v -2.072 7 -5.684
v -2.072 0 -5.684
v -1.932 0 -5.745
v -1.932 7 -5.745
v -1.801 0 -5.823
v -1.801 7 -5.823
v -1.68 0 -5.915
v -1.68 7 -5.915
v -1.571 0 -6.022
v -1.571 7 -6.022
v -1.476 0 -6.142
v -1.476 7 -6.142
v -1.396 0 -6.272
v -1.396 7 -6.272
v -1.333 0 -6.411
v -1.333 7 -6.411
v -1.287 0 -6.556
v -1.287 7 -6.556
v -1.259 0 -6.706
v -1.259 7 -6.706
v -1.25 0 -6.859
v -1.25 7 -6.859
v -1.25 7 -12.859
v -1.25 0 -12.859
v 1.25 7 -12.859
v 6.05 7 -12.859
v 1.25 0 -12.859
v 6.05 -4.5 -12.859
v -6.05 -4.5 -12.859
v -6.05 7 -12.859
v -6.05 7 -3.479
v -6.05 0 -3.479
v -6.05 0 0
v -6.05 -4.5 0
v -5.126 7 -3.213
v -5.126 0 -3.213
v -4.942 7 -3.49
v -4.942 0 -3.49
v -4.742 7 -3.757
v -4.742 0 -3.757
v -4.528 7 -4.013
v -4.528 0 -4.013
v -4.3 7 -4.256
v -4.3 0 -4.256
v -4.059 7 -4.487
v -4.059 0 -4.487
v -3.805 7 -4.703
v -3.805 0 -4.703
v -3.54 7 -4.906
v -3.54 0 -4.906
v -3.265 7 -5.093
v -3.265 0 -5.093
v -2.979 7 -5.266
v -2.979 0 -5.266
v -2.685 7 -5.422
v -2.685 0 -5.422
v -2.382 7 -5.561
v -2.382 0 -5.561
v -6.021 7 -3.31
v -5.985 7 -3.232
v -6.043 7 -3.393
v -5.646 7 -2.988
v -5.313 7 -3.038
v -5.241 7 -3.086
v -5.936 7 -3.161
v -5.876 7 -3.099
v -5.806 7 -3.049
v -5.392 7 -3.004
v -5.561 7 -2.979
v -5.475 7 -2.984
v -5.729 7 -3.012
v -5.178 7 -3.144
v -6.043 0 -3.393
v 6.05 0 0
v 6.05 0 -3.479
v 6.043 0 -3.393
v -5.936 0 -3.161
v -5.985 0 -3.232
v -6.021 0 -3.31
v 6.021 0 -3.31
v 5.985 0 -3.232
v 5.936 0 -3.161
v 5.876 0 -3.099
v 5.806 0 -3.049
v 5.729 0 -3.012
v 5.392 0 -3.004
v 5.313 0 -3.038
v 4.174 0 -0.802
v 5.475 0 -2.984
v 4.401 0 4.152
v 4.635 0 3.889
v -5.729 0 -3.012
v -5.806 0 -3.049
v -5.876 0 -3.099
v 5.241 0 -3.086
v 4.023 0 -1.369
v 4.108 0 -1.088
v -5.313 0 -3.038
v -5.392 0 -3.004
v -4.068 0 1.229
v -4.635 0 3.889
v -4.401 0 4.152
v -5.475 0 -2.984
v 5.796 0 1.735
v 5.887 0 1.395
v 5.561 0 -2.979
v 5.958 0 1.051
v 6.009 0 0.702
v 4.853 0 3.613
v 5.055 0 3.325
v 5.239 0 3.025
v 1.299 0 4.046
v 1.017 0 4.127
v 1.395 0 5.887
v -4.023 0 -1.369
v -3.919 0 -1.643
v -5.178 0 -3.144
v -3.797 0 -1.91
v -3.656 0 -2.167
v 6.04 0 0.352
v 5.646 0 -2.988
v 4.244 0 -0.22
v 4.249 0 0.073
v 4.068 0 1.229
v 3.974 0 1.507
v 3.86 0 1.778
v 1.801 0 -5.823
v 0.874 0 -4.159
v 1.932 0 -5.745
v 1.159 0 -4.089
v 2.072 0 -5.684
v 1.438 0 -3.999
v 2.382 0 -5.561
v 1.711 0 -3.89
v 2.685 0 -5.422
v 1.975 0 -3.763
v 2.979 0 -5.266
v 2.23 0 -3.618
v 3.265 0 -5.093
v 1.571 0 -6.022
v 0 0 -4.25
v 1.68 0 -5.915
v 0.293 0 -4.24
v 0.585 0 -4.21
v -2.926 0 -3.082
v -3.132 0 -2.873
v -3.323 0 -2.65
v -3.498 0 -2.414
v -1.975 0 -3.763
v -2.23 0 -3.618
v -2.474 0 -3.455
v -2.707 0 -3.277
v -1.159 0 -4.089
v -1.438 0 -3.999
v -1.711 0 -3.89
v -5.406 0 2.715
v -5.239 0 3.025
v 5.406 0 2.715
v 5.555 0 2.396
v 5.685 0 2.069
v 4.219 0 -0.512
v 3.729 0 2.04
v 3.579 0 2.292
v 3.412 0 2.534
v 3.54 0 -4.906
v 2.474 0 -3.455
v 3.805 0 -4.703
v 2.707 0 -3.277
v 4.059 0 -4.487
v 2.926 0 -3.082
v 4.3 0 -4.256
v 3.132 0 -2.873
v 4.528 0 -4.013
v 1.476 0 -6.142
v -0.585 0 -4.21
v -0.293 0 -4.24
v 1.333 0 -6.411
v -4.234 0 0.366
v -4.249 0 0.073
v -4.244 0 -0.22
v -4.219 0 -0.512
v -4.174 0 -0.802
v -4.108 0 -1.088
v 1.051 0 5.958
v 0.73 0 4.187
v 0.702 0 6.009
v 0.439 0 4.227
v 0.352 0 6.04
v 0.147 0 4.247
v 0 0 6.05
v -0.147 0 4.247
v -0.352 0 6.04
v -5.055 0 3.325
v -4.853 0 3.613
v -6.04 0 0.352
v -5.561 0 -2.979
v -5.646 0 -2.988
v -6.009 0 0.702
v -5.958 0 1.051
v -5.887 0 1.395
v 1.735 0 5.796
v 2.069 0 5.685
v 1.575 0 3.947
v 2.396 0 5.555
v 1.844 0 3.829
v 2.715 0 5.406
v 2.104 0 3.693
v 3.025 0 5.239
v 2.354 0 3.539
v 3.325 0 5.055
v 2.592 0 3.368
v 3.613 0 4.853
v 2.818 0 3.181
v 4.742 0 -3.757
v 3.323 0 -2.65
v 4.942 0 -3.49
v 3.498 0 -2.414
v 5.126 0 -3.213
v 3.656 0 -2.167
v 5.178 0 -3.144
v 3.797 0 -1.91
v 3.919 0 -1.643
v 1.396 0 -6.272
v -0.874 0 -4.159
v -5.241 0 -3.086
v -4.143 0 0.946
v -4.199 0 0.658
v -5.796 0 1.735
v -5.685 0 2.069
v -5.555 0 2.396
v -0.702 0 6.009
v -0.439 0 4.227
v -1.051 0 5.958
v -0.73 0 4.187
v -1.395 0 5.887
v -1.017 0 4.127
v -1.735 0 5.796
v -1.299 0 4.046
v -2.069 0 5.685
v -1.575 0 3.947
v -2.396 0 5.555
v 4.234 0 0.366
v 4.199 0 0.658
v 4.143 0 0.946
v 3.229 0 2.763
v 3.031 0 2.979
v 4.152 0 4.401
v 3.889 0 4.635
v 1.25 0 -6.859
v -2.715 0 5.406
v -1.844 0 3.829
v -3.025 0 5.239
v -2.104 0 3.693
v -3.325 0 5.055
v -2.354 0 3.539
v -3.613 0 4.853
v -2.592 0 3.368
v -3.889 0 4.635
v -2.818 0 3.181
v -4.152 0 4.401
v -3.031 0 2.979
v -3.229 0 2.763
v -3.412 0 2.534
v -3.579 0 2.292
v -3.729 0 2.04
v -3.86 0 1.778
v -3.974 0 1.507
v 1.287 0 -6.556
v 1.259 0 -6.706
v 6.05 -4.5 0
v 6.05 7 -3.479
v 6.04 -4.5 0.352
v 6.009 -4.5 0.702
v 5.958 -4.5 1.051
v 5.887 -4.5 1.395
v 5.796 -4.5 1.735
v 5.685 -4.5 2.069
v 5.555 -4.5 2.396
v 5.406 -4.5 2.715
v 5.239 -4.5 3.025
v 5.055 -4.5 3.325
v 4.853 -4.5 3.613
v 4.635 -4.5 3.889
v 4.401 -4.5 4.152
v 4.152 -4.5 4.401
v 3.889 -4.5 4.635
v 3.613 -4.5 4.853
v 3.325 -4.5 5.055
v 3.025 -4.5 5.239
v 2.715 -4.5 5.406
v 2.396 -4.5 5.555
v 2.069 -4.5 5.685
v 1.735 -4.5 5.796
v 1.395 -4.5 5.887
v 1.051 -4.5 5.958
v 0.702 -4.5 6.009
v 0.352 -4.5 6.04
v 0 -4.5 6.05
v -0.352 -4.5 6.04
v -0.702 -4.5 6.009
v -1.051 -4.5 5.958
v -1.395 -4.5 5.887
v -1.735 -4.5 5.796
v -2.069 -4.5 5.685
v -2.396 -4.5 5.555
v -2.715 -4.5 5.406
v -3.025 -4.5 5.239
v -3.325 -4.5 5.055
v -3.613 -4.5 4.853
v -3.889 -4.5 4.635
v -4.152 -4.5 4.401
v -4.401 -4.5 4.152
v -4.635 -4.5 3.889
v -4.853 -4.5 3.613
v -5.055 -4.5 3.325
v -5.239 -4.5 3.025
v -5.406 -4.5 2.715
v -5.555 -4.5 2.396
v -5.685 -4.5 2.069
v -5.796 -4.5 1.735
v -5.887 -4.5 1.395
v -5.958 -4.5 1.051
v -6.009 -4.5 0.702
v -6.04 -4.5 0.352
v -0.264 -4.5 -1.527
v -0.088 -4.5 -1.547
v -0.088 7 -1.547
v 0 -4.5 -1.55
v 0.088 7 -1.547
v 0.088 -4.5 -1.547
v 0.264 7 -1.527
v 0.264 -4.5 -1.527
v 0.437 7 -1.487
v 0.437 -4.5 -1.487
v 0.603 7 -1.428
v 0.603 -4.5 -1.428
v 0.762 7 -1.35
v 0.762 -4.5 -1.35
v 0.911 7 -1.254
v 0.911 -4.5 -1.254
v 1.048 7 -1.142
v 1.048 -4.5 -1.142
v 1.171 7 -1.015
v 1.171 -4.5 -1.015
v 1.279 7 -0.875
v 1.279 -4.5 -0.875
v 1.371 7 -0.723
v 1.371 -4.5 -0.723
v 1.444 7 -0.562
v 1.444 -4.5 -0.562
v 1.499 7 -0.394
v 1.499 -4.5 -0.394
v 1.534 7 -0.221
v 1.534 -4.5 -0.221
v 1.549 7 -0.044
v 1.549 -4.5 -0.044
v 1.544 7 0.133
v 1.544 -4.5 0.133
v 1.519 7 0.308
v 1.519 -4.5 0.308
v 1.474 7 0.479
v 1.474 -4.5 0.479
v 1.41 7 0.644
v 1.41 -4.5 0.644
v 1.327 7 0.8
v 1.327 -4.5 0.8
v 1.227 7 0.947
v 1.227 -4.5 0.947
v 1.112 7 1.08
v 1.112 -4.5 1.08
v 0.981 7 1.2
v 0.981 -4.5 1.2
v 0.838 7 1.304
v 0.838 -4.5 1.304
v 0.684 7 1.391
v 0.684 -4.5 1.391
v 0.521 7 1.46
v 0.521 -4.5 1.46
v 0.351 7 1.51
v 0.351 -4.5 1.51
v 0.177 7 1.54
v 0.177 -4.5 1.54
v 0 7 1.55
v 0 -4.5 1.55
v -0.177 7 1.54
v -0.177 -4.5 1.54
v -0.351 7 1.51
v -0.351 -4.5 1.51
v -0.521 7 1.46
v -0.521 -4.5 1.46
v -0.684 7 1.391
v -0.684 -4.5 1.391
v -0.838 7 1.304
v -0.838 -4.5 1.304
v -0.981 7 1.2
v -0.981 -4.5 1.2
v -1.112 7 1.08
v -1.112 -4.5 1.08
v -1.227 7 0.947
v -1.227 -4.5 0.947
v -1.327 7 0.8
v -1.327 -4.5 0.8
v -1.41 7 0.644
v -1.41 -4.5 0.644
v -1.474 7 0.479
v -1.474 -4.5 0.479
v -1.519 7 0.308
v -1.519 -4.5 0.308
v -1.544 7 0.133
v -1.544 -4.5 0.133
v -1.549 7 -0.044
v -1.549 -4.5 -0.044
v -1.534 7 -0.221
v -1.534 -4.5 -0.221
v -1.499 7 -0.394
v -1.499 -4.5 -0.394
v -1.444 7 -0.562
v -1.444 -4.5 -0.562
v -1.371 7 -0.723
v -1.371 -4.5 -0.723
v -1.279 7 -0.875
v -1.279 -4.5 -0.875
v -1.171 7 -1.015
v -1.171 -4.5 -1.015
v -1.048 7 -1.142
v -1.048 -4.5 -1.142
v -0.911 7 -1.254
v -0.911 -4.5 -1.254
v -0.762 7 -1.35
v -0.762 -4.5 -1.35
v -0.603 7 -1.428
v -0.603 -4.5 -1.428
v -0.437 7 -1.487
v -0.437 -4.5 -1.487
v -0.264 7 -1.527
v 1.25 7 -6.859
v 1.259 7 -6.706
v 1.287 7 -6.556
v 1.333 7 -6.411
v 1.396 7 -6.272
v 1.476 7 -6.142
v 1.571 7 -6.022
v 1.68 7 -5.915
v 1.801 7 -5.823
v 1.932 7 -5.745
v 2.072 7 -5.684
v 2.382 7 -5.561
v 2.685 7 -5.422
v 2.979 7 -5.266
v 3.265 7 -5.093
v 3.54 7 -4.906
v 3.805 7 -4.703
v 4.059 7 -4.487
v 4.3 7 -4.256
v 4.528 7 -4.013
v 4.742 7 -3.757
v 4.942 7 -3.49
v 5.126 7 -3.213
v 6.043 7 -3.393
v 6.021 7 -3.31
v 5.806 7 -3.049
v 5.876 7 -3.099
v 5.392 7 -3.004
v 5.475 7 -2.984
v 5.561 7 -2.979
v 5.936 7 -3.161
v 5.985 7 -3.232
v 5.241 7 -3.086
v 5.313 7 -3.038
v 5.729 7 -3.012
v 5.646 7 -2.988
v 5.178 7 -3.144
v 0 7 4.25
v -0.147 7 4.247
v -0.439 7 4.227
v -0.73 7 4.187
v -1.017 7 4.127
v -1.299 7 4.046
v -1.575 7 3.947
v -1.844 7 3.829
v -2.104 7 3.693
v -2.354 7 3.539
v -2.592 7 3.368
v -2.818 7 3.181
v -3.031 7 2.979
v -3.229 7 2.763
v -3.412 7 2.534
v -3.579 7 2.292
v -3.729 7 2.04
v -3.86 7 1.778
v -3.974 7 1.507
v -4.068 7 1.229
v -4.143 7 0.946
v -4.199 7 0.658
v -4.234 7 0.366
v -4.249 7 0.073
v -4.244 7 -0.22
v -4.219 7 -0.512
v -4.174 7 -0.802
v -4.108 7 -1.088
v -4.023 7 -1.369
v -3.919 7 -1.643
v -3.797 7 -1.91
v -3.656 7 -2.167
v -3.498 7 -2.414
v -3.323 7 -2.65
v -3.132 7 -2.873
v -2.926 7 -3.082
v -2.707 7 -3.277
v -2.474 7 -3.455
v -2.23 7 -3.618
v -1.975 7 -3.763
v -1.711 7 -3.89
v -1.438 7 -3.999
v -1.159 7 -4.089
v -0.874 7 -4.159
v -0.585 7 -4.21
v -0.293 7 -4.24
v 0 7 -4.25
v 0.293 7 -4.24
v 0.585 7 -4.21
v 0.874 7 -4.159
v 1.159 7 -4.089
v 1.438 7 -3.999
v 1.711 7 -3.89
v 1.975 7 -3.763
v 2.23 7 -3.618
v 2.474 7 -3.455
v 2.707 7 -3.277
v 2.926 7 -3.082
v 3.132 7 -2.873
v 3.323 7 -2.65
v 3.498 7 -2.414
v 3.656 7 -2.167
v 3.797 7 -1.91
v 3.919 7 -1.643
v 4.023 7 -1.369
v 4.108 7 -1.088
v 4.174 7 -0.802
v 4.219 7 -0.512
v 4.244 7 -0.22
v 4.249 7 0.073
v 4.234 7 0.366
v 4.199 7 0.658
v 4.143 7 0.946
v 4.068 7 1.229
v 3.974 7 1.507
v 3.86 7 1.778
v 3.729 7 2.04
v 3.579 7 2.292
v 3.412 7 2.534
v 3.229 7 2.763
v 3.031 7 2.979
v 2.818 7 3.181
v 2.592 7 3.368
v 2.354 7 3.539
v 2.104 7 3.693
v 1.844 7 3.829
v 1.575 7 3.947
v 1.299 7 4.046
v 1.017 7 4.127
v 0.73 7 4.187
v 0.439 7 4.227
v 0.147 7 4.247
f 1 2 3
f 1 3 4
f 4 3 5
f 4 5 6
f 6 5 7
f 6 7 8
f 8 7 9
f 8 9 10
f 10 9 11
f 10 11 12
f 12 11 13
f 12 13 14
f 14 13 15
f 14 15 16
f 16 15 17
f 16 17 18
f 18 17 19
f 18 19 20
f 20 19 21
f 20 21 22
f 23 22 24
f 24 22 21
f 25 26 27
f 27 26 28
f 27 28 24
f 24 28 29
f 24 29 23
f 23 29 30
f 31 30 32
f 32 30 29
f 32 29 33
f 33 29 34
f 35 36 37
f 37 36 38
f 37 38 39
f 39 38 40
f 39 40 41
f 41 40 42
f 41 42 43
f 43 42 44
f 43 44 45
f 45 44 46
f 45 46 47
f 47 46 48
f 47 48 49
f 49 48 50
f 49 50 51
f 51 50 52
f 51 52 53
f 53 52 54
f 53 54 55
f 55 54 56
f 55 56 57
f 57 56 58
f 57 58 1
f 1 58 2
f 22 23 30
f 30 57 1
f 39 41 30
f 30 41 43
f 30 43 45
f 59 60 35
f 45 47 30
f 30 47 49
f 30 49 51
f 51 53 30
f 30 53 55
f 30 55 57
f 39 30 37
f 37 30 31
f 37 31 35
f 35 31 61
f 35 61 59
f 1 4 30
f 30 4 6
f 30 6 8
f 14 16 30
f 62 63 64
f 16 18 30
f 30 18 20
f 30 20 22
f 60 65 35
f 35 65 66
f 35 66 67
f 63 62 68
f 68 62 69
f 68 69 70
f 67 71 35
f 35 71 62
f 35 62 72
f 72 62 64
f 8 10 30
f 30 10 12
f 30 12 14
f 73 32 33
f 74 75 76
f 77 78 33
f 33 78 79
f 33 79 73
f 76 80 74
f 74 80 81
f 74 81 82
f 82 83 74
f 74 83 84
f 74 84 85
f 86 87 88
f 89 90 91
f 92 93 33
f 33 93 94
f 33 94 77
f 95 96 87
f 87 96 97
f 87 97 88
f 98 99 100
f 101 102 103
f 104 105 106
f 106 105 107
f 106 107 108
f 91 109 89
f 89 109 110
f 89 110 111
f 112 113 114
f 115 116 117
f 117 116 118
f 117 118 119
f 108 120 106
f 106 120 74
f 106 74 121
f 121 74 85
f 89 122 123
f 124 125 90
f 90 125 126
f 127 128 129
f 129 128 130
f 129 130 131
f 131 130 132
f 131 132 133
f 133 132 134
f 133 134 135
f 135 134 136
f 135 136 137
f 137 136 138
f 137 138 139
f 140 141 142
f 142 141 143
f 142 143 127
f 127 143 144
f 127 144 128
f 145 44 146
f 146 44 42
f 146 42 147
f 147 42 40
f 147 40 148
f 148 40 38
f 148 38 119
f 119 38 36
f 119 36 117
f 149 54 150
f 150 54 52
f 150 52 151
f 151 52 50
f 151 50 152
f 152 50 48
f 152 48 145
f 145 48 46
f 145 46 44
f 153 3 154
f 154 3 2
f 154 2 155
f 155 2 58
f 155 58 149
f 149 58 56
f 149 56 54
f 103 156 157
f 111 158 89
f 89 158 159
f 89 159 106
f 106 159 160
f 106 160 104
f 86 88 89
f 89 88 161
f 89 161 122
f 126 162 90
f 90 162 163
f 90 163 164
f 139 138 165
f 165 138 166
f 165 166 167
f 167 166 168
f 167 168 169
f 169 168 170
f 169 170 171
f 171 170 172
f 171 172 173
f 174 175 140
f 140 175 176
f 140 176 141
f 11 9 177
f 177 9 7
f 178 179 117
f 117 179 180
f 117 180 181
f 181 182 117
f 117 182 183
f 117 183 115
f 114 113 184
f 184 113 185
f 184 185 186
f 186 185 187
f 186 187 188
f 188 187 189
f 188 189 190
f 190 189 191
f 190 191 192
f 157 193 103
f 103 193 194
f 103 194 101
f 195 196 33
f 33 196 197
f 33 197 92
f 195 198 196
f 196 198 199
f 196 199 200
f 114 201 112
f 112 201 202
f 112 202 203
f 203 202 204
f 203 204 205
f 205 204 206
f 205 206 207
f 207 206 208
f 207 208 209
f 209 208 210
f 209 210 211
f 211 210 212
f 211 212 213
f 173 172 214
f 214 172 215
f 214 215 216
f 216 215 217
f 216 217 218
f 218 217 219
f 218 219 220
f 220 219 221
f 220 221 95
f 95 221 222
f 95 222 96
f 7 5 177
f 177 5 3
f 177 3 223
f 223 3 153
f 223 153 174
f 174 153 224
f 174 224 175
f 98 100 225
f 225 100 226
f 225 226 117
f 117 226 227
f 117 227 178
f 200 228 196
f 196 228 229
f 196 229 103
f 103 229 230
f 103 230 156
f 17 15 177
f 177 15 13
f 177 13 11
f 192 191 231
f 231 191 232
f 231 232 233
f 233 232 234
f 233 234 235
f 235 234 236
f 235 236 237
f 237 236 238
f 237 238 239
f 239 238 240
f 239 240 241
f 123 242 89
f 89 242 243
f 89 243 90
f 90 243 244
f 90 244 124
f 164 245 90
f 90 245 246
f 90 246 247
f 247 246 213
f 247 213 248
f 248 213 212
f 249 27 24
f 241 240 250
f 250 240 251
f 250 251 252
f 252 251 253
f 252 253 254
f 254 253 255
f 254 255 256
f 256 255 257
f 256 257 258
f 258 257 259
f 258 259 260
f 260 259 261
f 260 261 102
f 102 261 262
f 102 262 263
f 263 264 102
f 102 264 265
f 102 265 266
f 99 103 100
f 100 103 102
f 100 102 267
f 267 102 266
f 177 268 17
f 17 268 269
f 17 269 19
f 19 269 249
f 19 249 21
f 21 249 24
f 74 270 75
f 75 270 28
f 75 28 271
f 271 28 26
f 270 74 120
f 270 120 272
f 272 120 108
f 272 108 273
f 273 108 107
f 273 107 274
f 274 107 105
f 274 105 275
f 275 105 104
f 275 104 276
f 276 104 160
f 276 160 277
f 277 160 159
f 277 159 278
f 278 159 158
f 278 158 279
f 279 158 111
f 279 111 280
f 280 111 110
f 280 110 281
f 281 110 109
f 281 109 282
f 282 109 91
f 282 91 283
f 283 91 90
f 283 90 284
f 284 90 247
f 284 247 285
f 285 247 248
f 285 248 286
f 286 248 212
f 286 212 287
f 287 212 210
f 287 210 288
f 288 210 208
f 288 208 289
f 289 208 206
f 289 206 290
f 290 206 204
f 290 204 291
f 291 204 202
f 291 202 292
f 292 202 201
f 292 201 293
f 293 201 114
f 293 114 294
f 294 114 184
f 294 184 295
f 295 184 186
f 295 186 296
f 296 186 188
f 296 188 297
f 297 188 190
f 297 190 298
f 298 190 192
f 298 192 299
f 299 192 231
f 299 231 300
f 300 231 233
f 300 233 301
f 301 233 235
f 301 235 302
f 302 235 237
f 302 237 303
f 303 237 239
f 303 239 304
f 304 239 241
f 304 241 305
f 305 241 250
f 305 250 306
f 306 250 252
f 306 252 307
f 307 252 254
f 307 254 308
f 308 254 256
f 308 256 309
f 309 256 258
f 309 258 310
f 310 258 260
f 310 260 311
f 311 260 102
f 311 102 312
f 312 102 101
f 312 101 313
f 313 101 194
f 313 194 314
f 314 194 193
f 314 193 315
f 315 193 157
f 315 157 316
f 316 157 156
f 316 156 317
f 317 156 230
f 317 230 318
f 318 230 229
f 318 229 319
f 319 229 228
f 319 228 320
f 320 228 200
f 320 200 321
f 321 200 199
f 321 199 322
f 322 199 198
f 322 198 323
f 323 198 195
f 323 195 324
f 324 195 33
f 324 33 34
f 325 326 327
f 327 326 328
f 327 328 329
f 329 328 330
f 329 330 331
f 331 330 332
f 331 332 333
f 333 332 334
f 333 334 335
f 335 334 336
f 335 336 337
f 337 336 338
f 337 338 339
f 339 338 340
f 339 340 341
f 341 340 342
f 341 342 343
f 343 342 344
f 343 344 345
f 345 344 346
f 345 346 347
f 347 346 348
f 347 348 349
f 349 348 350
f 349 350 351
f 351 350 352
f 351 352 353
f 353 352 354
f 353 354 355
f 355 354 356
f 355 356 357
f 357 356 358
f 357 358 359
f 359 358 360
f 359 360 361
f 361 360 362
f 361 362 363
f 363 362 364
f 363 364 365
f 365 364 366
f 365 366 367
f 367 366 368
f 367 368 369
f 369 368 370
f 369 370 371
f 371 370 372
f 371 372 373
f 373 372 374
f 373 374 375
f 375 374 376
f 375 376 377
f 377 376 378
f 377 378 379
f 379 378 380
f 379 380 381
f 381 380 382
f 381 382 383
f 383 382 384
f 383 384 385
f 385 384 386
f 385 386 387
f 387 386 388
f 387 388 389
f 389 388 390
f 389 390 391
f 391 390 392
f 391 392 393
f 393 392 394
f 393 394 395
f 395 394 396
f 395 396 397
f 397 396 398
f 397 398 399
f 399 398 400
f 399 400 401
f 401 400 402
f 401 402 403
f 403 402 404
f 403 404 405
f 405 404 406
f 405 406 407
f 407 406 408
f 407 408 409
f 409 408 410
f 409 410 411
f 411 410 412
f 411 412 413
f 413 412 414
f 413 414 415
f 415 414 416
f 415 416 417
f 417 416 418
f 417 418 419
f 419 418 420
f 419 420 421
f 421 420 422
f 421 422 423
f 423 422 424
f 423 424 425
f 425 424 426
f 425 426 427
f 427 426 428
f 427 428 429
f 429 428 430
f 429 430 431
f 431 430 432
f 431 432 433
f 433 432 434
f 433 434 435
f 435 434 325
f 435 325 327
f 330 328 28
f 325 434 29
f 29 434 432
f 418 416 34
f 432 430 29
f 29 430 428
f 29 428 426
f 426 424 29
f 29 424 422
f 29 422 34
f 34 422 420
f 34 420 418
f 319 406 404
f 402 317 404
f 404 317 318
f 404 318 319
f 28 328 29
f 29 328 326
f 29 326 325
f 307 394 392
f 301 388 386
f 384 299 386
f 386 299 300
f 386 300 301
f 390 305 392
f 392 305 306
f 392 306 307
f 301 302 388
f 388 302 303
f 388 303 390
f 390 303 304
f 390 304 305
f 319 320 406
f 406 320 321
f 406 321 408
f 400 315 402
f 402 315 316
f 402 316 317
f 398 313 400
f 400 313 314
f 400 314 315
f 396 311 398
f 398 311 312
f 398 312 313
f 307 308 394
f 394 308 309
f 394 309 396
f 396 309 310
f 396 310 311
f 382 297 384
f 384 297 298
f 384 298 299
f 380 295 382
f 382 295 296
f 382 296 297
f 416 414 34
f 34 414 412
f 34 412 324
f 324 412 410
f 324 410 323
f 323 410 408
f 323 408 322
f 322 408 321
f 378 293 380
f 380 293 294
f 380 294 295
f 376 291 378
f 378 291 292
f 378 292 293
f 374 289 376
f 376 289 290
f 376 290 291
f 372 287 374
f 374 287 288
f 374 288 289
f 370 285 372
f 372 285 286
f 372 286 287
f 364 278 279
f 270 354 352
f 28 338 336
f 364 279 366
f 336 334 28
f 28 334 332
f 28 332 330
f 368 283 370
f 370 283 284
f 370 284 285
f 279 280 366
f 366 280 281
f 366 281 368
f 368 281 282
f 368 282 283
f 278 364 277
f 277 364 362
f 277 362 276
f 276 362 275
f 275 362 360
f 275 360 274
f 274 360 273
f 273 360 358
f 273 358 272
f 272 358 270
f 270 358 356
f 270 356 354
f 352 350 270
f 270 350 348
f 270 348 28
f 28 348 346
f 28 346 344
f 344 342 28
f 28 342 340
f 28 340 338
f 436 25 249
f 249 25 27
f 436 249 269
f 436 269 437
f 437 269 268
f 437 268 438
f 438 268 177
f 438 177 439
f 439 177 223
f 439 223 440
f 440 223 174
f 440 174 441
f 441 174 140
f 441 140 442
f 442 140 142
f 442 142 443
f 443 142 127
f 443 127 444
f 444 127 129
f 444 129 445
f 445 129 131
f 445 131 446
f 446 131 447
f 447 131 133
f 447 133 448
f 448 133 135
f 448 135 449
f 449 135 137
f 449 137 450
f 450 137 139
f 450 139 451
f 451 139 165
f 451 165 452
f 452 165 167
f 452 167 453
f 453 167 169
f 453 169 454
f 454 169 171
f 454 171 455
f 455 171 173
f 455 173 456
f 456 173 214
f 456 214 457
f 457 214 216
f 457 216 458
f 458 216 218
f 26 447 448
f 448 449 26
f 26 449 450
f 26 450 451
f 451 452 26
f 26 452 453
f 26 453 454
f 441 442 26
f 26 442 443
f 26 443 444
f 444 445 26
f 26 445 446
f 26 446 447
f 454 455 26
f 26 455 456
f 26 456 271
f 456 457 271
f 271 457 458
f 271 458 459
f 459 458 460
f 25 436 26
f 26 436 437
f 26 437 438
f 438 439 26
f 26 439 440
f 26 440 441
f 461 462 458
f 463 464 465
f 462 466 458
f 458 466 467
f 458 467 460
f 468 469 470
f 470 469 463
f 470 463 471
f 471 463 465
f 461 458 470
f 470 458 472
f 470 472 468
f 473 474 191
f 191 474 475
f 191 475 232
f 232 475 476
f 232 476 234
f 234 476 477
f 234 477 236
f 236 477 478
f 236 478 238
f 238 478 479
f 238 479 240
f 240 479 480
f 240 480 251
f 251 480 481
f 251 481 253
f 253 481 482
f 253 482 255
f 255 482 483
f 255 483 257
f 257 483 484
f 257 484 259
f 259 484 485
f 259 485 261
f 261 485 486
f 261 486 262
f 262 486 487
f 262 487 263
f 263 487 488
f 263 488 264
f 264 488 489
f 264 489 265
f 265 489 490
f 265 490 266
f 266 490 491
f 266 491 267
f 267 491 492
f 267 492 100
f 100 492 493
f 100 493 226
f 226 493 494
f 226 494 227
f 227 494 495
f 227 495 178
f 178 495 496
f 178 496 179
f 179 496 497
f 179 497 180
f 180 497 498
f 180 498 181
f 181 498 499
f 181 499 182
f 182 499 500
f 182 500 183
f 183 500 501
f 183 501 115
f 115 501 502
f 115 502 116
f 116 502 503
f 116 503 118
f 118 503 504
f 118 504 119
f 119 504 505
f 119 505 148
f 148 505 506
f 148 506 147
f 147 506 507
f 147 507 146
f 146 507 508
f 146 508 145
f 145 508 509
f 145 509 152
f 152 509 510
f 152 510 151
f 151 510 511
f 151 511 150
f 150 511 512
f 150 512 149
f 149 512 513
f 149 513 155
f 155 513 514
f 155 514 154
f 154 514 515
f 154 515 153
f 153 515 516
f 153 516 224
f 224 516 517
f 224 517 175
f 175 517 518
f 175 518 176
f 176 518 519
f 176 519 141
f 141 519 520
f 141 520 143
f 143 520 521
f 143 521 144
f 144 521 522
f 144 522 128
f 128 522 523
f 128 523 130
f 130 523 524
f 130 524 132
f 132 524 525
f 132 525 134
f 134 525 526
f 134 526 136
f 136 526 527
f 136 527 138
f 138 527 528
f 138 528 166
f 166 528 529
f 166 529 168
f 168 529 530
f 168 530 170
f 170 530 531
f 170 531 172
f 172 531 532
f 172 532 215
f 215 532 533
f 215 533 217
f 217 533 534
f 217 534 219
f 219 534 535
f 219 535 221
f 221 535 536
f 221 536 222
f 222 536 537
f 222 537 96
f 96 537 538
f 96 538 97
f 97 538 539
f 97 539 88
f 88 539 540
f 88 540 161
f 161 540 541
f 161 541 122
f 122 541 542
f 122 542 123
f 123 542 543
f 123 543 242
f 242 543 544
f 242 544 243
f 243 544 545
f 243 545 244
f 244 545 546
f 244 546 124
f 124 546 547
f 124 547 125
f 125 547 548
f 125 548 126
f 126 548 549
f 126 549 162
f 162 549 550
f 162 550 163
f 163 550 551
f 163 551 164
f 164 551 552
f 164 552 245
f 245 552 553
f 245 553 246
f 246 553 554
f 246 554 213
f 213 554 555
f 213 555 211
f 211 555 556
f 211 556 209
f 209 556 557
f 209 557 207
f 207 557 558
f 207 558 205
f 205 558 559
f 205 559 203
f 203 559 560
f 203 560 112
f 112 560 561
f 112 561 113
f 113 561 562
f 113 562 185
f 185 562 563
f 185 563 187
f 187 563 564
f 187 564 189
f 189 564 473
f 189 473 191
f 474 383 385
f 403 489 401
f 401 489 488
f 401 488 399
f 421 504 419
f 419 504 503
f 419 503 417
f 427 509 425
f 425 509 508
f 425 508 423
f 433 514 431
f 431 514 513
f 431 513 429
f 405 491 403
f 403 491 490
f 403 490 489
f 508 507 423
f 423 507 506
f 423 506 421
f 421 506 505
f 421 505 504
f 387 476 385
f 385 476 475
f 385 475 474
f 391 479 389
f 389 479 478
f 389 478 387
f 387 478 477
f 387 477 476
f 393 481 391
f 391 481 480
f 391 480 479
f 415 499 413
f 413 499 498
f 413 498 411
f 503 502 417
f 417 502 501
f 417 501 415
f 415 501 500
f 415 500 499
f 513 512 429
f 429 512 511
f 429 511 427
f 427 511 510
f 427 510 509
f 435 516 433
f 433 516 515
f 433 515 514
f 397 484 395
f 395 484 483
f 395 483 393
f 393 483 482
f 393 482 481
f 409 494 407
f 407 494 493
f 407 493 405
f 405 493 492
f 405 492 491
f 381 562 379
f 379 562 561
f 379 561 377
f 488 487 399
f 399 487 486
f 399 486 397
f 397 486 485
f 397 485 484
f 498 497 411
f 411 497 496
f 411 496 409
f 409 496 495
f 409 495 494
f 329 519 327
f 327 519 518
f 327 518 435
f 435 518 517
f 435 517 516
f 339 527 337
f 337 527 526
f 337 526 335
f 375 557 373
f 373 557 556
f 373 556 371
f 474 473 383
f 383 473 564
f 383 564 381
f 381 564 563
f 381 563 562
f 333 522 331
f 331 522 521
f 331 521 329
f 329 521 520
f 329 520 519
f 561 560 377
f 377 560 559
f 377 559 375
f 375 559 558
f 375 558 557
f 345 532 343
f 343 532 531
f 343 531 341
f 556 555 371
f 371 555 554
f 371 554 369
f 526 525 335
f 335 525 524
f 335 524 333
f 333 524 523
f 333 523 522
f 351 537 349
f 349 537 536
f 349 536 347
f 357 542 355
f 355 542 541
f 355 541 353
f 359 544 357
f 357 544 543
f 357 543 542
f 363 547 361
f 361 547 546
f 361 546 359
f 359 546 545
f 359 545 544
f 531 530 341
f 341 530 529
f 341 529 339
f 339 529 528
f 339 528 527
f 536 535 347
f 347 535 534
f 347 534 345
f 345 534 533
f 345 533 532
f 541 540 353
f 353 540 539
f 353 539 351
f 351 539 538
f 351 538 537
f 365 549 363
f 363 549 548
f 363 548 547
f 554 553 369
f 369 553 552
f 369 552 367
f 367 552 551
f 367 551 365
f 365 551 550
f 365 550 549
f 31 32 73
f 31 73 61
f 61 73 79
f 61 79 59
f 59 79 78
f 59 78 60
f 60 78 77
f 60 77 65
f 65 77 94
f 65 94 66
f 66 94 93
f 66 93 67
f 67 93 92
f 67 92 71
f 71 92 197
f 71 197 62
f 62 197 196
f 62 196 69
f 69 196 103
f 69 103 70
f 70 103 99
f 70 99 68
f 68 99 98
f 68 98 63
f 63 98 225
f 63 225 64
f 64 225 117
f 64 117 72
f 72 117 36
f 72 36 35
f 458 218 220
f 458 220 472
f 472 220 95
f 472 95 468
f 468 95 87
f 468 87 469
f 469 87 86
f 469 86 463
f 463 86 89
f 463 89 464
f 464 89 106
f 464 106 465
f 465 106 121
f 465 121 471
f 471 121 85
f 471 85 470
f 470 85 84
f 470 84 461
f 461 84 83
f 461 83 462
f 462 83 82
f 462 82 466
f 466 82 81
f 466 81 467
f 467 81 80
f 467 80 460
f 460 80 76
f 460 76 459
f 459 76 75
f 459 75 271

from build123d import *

# Parameters (mm, degrees)
BOSS_EXTRUDE1_DEPTH   = 7
BOSS_EXTRUDE1_2_DEPTH = 7
SKETCH1_R             = 4.25
SKETCH1_R_2           = 1.55
BOSS_EXTRUDE1_3_DEPTH = 7
BOSS_EXTRUDE2_START   = 4.5
SKETCH2_R             = 1.55
BOSS_EXTRUDE2_DEPTH   = 4.5
FILLET1_R             = 0.5
FILLET2_R             = 0.5


with BuildPart() as part:
    # Sketch1 → Boss-Extrude1 (new body)
    with BuildSketch(Plane(origin=(0, 0, 0), x_dir=(1, 0, 0), z_dir=(0, 1, 0))):
        with BuildLine():
            Line((1.25, 12.8585712797929), (1.25, 6.858571279792899))
            ThreePointArc((1.2499999999999998, 6.858571279792899), (1.4758899620338575, 6.141843555941653), (2.0719178082191787, 5.684158389417402))
            ThreePointArc((2.0719178082191805, 5.6841583894174015), (4.956692583756128, 3.468962183440025), (6.049999999999999, -2e-15))
            Line((6.05, 0), (6.05, 9.006664199358159))
            Line((6.05, 9.006664199358159), (6.05, 9.059732997737507))
            Line((6.05, 9.059732997737507), (6.05, 12.8585712797929))
            Line((6.05, 12.8585712797929), (1.25, 12.8585712797929))
        make_face()
    extrude(amount=BOSS_EXTRUDE1_DEPTH)



with BuildPart() as body_2:
    # Sketch1 → Boss-Extrude1 2 (new body)
    with BuildSketch(Plane(origin=(0, 0, 0), x_dir=(1, 0, 0), z_dir=(0, 1, 0))):
        with BuildLine():
            Line((-1.25, 6.858571279792899), (-1.25, 12.8585712797929))
            Line((-1.25, 12.8585712797929), (-6.05, 12.8585712797929))
            Line((-6.05, 12.8585712797929), (-6.05, 9.006664199358159))
            Line((-6.05, 9.006664199358159), (-6.05, 0))
            ThreePointArc((-6.050000000000002, 2.2e-16), (-4.95669258375613, 3.4689621834400257), (-2.0719178082191787, 5.684158389417403))
            ThreePointArc((-2.0719178082191787, 5.684158389417402), (-1.4758899620338577, 6.141843555941653), (-1.25, 6.858571279792899))
        make_face()
    extrude(amount=BOSS_EXTRUDE1_2_DEPTH)


with BuildPart() as body_3:
    # Sketch1 → Boss-Extrude1 3 (new body)
    with BuildSketch(Plane(origin=(0, 0, 0), x_dir=(1, 0, 0), z_dir=(0, 1, 0))):
        with Locations(Location((0, 0, 0), (0, 0, 270))):
            Circle(SKETCH1_R)
        with Locations(Location((0, 0, 0), (0, 0, 270))):
            Circle(SKETCH1_R_2, mode=Mode.SUBTRACT)
    extrude(amount=BOSS_EXTRUDE1_3_DEPTH)


with BuildPart() as part_1:
    add(part.part)

    add(body_2.part)  # Boss-Extrude2 merges body 2

    add(body_3.part)  # Boss-Extrude2 merges body 3
    # Sketch2 → Boss-Extrude2 (add)
    # profile 1 of 4: a face of its own
    with BuildSketch(Plane.XZ.offset(BOSS_EXTRUDE2_START)):
        with BuildLine():
            Line((-6.05, -12.8585712797929), (-1.25, -12.8585712797929))
            Line((-1.25, -12.8585712797929), (-1.2500000000000002, -6.858571279792899))
            ThreePointArc((-1.2500000000000004, -6.858571279792899), (-1.4758899620338575, -6.141843555941654), (-2.071917808219176, -5.684158389417402))
            ThreePointArc((-2.071917808219175, -5.684158389417403), (-4.956692583756129, -3.468962183440026), (-6.05, 5.2e-16))
            Line((-6.05, 7.4e-16), (-6.05, -12.8585712797929))
        make_face()
    # profile 2 of 4: a face of its own
    with BuildSketch(Plane.XZ.offset(BOSS_EXTRUDE2_START)):
        with BuildLine():
            ThreePointArc((2.071917808219175, -5.684158389417404), (1.4758899620338575, -6.141843555941655), (1.25, -6.858571279792899))
            Line((1.25, -6.858571279792899), (1.25, -12.8585712797929))
            Line((1.25, -12.8585712797929), (6.05, -12.8585712797929))
            Line((6.05, -12.8585712797929), (6.05, 0))
            ThreePointArc((6.05, 0), (4.956692583756128, -3.468962183440026), (2.071917808219175, -5.684158389417404))
        make_face()
    # profile 3 of 4: a face of its own
    with BuildSketch(Plane.XZ.offset(BOSS_EXTRUDE2_START)):
        with BuildLine():
            ThreePointArc((6.05, 0), (-4.956692583756127, 3.468962183440027), (2.071917808219173, -5.684158389417404))
            ThreePointArc((2.071917808219173, -5.684158389417404), (4.956692583756128, -3.468962183440026), (6.05, 0))
        make_face()
        with Locations(Location((0, 0, 0), (0, 0, 90))):
            Circle(SKETCH2_R, mode=Mode.SUBTRACT)
    # profile 4 of 4: a face of its own
    with BuildSketch(Plane.XZ.offset(BOSS_EXTRUDE2_START)):
        with BuildLine():
            Line((-1.25, -12.8585712797929), (1.25, -12.8585712797929))
            Line((1.25, -12.8585712797929), (1.2500000000000007, -6.858571279792899))
            ThreePointArc((1.2500000000000002, -6.858571279792899), (1.475889962033857, -6.141843555941656), (2.0719178082191747, -5.684158389417404))
            ThreePointArc((2.0719178082191734, -5.684158389417404), (-7.8e-16, -6.05), (-2.071917808219175, -5.684158389417403))
            ThreePointArc((-2.071917808219176, -5.684158389417402), (-1.4758899620338575, -6.141843555941654), (-1.2500000000000004, -6.858571279792899))
            Line((-1.2500000000000002, -6.858571279792899), (-1.25, -12.8585712797929))
        make_face()
    extrude(amount=-BOSS_EXTRUDE2_DEPTH)

    # Fillet1
    fillet1_edges = [part_1.edges().sort_by_distance(p)[0] for p in [
        (-6.050000000000001, 3.5, -1.1e-16),
    ]]
    fillet(fillet1_edges, radius=FILLET1_R)

    # Fillet2
    fillet2_edges = [part_1.edges().sort_by_distance(p)[0] for p in [
        (6.05, 3.5, 9.4e-16),
    ]]
    fillet(fillet2_edges, radius=FILLET2_R)


solid = part_1.part
